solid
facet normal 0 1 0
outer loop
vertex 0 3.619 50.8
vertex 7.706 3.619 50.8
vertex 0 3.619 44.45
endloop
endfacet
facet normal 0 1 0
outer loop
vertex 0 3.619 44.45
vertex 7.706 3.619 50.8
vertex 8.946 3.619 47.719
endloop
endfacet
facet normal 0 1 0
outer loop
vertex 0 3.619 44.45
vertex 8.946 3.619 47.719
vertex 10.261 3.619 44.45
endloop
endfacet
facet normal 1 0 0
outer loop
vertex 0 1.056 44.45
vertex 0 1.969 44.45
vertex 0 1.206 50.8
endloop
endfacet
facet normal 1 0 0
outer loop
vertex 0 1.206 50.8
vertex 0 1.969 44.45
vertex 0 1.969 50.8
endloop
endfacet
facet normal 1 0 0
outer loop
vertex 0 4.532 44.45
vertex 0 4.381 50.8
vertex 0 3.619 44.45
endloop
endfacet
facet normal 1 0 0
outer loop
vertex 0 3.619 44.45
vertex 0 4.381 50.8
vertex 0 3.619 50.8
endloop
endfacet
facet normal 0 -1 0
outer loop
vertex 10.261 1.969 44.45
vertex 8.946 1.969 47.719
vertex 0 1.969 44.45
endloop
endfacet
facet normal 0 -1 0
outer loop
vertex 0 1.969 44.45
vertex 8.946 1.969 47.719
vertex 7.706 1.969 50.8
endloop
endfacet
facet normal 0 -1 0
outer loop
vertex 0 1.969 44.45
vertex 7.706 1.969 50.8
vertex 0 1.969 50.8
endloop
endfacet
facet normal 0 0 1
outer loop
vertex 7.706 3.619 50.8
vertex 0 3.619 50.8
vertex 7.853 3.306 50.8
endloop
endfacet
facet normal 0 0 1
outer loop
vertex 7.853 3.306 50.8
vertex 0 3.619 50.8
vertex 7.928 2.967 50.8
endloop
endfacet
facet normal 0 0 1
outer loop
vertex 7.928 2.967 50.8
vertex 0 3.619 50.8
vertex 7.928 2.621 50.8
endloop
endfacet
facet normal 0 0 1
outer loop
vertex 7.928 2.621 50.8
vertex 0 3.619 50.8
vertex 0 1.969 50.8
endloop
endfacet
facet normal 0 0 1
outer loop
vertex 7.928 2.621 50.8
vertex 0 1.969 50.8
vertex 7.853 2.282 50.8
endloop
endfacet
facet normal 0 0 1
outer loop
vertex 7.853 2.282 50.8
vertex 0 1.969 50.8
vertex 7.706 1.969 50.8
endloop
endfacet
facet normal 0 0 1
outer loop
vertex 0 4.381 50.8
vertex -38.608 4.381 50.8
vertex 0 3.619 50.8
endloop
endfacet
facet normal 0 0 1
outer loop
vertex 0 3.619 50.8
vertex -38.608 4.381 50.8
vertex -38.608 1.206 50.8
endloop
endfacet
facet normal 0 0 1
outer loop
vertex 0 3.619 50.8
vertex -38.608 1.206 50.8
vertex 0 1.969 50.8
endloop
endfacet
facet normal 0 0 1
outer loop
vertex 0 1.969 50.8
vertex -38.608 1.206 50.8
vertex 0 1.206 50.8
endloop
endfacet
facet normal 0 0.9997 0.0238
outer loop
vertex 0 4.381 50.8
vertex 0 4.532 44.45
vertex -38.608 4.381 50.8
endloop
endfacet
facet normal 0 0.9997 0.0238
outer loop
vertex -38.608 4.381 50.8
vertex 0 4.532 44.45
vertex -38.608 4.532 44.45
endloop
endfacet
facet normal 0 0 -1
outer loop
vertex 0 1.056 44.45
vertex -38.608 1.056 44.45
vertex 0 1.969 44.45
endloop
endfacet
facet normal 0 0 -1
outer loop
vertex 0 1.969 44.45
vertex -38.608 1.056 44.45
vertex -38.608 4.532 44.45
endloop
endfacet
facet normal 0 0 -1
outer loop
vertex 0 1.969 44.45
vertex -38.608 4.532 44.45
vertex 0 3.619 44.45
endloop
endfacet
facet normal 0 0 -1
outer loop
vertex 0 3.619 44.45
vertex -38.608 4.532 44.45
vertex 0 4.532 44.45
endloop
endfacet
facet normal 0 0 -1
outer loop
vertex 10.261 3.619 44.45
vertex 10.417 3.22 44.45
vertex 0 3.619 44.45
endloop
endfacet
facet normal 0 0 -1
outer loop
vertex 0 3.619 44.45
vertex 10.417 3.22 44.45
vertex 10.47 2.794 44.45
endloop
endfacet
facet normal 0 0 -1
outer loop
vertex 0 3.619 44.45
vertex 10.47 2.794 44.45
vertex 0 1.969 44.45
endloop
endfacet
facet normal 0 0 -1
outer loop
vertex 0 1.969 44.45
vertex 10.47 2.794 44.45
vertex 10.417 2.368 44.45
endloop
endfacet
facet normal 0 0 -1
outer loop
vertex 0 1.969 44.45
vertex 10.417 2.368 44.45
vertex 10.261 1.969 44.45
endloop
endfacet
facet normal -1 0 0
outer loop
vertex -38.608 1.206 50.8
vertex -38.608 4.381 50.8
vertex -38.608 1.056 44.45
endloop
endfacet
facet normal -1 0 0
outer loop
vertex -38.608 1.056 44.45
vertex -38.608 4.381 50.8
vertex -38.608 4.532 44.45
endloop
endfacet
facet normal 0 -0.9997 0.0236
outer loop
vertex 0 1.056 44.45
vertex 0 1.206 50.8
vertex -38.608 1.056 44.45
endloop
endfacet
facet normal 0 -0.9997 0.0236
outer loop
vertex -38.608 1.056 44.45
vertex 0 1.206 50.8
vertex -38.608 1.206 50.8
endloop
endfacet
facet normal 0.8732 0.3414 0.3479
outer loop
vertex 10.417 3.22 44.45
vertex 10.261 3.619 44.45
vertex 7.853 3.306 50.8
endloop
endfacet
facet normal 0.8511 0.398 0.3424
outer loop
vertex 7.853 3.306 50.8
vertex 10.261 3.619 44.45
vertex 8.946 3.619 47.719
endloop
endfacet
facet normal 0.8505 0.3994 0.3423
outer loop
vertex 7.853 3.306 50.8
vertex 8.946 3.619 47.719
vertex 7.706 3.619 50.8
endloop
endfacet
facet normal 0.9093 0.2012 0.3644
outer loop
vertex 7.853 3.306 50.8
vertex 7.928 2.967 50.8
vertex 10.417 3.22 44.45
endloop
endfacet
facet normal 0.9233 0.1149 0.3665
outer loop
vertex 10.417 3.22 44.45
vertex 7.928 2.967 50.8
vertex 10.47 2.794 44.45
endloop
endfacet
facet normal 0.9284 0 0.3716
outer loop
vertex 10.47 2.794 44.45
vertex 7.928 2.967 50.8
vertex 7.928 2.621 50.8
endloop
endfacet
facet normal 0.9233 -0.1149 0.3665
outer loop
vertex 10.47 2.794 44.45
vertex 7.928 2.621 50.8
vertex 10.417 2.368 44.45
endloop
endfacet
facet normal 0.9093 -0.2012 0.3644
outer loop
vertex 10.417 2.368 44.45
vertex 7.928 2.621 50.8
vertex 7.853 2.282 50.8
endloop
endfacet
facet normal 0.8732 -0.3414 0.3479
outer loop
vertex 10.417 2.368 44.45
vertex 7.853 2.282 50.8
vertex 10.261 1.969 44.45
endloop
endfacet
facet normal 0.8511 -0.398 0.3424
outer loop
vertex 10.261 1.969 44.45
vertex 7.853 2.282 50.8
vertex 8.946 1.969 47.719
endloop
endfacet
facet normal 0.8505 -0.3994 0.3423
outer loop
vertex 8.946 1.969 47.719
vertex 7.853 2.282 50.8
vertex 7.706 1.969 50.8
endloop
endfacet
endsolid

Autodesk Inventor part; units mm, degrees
ref_plane "YZ Plane" through (0, 0, 0) normal (1, 0, 0) x (0, 1, 0)
ref_plane "XZ Plane" through (0, 0, 0) normal (0, 1, 0) x (-1, 0, 0)
sketch "Sketch2" plane through (0, 0, 0) normal (0, 0, 1) x (1, 0, 0)
  line L0 (0, 0) -> (25.4, 0)
  line L1 (25.4, 0) -> (25.4, 5.588)
  line L2 (25.4, 5.588) -> (0, 5.588)
  line L3 (0, 5.588) -> (0, 0)
  arc A0 (25.4, 0) -> (25.4, 5.588) centre (25.4, 2.794) ccw
  dimension "d0" = 25.4
  dimension "d1" = 5.588
ref_plane "Work Plane1" through (0, 0, 50.8) normal (0, 0, 1) x (1, 0, 0)
sketch "Sketch3" plane through (0, 0, 50.8) normal (0, 0, 1) x (1, 0, 0)
  line L0 (0, 1.2065) -> (6.35, 1.2065)
  line L1 (6.35, 1.2065) -> (6.35, 4.3815)
  line L2 (6.35, 4.3815) -> (0, 4.3815)
  line L3 (0, 4.3815) -> (0, 1.2065)
  arc A0 (6.35, 1.2065) -> (6.35, 4.3815) centre (6.35, 2.794) ccw
  point P0 (0, 0)
  dimension "d3" = 6.35
  dimension "d4" = 3.175
  dimension "d5" = 1.2065
loft "Loft1" add profiles "Sketch2", "Sketch3"
sketch "Sketch4" plane through (0, 0, 0) normal (-1, 0, 0) x (0, 0, 1)
  line L0 (0, 5.588) -> (0, 0) projected
  line L1 (0, 0) -> (50.8, 1.2065) projected
  line L2 (50.8, 4.3815) -> (50.8, 1.2065) projected
  line L3 (0, 5.588) -> (50.8, 4.3815) projected
  line L4 (0, 5.588) -> (50.8, 4.3815) projected
  line L5 (44.45, 4.5323) -> (44.45, 1.0557)
  line L6 (50.8, 1.2065) -> (0, 0) projected
  dimension "d10" = 6.35
extrude "Extrusion1" add sketch "Sketch4" along normal blind 38.608 contours L3 L2 L1 L5
sketch "Sketch5" plane through (25.4, 5.588, 0) normal (0, 0, -1) x (-1, 0, 0)
  line L0 (25.4, 0) -> (25.4, -5.588) projected
  line L1 (0, 0) -> (25.4, 0) projected
  arc A0 (0, 0) -> (0, -5.588) centre (0, -2.794) ccw projected
  line L2 (25.4, -5.588) -> (0, -5.588) projected
  line L3 (25.4, 0) -> (25.4, -5.588) projected
  line L4 (25.4, 0) -> (36.1487, 0)
  line L5 (36.1487, 0) -> (36.1487, -5.5776)
  line L6 (36.1487, -5.5776) -> (25.4, -5.5776)
  line L7 (25.4, -5.5776) -> (25.4, 0)
  line L8 (-3.175, -0.1076) -> (-3.175, -7.007)
  line L9 (25.4, -5.588) -> (0, -5.588) projected
revolve "Revolution1" add sketch "Sketch5" angle 15 about axis through (28.575, 5.4804, 0) along (0, -1, 0)
sketch "Sketch7" plane through (-10.7487, 5.588, 0) normal (0, 1, 0) x (1, 0, 0)
  line L0 (0, 0) -> (10.7487, 0) projected
  line L1 (36.1487, 0) -> (10.7487, 0) projected
  arc A0 (36.2569, 0.8218) -> (36.1487, 0) centre (39.3237, 0) ccw projected
  line L2 (1.3399, 10.1777) -> (36.2569, 0.8218) projected
  arc A1 (1.3399, 10.1777) -> (0, 0) centre (39.3237, 0) ccw projected
  line L3 (10.7487, 0) -> (10.7487, -44.45) projected
  line L4 (10.7487, 0) -> (-2.0556, 0)
  line L5 (-2.0556, 0) -> (-2.0556, 10.6947)
  line L6 (-2.0556, 10.6947) -> (10.7487, 10.6947)
  line L7 (10.7487, 10.6947) -> (10.7487, 0)
extrude "Extrusion2" cut sketch "Sketch7" against normal blind 38.1 contours A1 L2 L7 L0 | L4 L5 L6 L7 L2 A1
sketch "Sketch8" plane through (0, 0.0104, -7.6566) normal (0.258819, 0, -0.9659258) x (-0.9659258, 0, -0.258819)
  line L0 (-29.583, 2.7836) -> (-24.8205, 2.7836)
  line L1 (-24.8205, 2.7836) -> (-8.9455, 2.7836)
  circle A0 centre (-24.8205, 2.7836) radius 1.27
  circle A1 centre (-8.9455, 2.7836) radius 1.27
  line L2 (-26.408, -0.0104) -> (0, -0.0104) projected
  point P0 (-1.9817, -0.0104)
  point P1 (0, 0)
  dimension "d17" = 4.7625
  dimension "d18" = 15.875
  dimension "d19" = 2.54
  dimension "d20" = 2.54
  dimension "d23" = 2.794
extrude "Extrusion4" cut sketch "Sketch8" against normal blind 12.7
sketch "Sketch9" plane through (0, 1.0557, 44.45) normal (-1, 0, 0) x (0, 0, 1)
  line L0 (6.35, 0.1508) -> (6.35, 3.3258) projected
  line L1 (6.35, 3.3258) -> (0, 3.4766) projected
  line L2 (0, 3.4766) -> (0, 0) projected
  line L3 (0, 0) -> (6.35, 0.1508) projected
  line L4 (6.35, 3.3258) -> (6.35, 0.1508) projected
  line L5 (6.35, 2.5638) -> (0, 2.5638)
  line L6 (0, 3.4766) -> (0, 0) projected
  line L7 (6.35, 0.9128) -> (0, 0.9128)
  line L8 (6.35, 2.5638) -> (6.35, 4.769)
  line L9 (6.35, 4.769) -> (-56.0869, 8.5681)
  line L10 (-56.0869, 8.5681) -> (-57.3905, -12.8563)
  line L11 (-57.3905, -12.8563) -> (6.35, -0.7759)
  line L12 (6.35, -0.7759) -> (6.35, 0.9128)
  line L13 (0, 0.9128) -> (0, 0) construction
  line L14 (0, 2.5638) -> (0, 3.4766) construction
  line L15 (0, 2.5638) -> (0, 0.9128)
  point P0 (-44.45, -1.0557)
  dimension "d26" = 1.651
extrude "Extrusion5" cut sketch "Sketch9" against normal through all contours L3 L2 L7 L0 | L12 L11 L10 L9 L8 L1 L2 L3 | L5 L2 L1 L0
properties part number "DivePlanesStabilizingFins_Print2"
